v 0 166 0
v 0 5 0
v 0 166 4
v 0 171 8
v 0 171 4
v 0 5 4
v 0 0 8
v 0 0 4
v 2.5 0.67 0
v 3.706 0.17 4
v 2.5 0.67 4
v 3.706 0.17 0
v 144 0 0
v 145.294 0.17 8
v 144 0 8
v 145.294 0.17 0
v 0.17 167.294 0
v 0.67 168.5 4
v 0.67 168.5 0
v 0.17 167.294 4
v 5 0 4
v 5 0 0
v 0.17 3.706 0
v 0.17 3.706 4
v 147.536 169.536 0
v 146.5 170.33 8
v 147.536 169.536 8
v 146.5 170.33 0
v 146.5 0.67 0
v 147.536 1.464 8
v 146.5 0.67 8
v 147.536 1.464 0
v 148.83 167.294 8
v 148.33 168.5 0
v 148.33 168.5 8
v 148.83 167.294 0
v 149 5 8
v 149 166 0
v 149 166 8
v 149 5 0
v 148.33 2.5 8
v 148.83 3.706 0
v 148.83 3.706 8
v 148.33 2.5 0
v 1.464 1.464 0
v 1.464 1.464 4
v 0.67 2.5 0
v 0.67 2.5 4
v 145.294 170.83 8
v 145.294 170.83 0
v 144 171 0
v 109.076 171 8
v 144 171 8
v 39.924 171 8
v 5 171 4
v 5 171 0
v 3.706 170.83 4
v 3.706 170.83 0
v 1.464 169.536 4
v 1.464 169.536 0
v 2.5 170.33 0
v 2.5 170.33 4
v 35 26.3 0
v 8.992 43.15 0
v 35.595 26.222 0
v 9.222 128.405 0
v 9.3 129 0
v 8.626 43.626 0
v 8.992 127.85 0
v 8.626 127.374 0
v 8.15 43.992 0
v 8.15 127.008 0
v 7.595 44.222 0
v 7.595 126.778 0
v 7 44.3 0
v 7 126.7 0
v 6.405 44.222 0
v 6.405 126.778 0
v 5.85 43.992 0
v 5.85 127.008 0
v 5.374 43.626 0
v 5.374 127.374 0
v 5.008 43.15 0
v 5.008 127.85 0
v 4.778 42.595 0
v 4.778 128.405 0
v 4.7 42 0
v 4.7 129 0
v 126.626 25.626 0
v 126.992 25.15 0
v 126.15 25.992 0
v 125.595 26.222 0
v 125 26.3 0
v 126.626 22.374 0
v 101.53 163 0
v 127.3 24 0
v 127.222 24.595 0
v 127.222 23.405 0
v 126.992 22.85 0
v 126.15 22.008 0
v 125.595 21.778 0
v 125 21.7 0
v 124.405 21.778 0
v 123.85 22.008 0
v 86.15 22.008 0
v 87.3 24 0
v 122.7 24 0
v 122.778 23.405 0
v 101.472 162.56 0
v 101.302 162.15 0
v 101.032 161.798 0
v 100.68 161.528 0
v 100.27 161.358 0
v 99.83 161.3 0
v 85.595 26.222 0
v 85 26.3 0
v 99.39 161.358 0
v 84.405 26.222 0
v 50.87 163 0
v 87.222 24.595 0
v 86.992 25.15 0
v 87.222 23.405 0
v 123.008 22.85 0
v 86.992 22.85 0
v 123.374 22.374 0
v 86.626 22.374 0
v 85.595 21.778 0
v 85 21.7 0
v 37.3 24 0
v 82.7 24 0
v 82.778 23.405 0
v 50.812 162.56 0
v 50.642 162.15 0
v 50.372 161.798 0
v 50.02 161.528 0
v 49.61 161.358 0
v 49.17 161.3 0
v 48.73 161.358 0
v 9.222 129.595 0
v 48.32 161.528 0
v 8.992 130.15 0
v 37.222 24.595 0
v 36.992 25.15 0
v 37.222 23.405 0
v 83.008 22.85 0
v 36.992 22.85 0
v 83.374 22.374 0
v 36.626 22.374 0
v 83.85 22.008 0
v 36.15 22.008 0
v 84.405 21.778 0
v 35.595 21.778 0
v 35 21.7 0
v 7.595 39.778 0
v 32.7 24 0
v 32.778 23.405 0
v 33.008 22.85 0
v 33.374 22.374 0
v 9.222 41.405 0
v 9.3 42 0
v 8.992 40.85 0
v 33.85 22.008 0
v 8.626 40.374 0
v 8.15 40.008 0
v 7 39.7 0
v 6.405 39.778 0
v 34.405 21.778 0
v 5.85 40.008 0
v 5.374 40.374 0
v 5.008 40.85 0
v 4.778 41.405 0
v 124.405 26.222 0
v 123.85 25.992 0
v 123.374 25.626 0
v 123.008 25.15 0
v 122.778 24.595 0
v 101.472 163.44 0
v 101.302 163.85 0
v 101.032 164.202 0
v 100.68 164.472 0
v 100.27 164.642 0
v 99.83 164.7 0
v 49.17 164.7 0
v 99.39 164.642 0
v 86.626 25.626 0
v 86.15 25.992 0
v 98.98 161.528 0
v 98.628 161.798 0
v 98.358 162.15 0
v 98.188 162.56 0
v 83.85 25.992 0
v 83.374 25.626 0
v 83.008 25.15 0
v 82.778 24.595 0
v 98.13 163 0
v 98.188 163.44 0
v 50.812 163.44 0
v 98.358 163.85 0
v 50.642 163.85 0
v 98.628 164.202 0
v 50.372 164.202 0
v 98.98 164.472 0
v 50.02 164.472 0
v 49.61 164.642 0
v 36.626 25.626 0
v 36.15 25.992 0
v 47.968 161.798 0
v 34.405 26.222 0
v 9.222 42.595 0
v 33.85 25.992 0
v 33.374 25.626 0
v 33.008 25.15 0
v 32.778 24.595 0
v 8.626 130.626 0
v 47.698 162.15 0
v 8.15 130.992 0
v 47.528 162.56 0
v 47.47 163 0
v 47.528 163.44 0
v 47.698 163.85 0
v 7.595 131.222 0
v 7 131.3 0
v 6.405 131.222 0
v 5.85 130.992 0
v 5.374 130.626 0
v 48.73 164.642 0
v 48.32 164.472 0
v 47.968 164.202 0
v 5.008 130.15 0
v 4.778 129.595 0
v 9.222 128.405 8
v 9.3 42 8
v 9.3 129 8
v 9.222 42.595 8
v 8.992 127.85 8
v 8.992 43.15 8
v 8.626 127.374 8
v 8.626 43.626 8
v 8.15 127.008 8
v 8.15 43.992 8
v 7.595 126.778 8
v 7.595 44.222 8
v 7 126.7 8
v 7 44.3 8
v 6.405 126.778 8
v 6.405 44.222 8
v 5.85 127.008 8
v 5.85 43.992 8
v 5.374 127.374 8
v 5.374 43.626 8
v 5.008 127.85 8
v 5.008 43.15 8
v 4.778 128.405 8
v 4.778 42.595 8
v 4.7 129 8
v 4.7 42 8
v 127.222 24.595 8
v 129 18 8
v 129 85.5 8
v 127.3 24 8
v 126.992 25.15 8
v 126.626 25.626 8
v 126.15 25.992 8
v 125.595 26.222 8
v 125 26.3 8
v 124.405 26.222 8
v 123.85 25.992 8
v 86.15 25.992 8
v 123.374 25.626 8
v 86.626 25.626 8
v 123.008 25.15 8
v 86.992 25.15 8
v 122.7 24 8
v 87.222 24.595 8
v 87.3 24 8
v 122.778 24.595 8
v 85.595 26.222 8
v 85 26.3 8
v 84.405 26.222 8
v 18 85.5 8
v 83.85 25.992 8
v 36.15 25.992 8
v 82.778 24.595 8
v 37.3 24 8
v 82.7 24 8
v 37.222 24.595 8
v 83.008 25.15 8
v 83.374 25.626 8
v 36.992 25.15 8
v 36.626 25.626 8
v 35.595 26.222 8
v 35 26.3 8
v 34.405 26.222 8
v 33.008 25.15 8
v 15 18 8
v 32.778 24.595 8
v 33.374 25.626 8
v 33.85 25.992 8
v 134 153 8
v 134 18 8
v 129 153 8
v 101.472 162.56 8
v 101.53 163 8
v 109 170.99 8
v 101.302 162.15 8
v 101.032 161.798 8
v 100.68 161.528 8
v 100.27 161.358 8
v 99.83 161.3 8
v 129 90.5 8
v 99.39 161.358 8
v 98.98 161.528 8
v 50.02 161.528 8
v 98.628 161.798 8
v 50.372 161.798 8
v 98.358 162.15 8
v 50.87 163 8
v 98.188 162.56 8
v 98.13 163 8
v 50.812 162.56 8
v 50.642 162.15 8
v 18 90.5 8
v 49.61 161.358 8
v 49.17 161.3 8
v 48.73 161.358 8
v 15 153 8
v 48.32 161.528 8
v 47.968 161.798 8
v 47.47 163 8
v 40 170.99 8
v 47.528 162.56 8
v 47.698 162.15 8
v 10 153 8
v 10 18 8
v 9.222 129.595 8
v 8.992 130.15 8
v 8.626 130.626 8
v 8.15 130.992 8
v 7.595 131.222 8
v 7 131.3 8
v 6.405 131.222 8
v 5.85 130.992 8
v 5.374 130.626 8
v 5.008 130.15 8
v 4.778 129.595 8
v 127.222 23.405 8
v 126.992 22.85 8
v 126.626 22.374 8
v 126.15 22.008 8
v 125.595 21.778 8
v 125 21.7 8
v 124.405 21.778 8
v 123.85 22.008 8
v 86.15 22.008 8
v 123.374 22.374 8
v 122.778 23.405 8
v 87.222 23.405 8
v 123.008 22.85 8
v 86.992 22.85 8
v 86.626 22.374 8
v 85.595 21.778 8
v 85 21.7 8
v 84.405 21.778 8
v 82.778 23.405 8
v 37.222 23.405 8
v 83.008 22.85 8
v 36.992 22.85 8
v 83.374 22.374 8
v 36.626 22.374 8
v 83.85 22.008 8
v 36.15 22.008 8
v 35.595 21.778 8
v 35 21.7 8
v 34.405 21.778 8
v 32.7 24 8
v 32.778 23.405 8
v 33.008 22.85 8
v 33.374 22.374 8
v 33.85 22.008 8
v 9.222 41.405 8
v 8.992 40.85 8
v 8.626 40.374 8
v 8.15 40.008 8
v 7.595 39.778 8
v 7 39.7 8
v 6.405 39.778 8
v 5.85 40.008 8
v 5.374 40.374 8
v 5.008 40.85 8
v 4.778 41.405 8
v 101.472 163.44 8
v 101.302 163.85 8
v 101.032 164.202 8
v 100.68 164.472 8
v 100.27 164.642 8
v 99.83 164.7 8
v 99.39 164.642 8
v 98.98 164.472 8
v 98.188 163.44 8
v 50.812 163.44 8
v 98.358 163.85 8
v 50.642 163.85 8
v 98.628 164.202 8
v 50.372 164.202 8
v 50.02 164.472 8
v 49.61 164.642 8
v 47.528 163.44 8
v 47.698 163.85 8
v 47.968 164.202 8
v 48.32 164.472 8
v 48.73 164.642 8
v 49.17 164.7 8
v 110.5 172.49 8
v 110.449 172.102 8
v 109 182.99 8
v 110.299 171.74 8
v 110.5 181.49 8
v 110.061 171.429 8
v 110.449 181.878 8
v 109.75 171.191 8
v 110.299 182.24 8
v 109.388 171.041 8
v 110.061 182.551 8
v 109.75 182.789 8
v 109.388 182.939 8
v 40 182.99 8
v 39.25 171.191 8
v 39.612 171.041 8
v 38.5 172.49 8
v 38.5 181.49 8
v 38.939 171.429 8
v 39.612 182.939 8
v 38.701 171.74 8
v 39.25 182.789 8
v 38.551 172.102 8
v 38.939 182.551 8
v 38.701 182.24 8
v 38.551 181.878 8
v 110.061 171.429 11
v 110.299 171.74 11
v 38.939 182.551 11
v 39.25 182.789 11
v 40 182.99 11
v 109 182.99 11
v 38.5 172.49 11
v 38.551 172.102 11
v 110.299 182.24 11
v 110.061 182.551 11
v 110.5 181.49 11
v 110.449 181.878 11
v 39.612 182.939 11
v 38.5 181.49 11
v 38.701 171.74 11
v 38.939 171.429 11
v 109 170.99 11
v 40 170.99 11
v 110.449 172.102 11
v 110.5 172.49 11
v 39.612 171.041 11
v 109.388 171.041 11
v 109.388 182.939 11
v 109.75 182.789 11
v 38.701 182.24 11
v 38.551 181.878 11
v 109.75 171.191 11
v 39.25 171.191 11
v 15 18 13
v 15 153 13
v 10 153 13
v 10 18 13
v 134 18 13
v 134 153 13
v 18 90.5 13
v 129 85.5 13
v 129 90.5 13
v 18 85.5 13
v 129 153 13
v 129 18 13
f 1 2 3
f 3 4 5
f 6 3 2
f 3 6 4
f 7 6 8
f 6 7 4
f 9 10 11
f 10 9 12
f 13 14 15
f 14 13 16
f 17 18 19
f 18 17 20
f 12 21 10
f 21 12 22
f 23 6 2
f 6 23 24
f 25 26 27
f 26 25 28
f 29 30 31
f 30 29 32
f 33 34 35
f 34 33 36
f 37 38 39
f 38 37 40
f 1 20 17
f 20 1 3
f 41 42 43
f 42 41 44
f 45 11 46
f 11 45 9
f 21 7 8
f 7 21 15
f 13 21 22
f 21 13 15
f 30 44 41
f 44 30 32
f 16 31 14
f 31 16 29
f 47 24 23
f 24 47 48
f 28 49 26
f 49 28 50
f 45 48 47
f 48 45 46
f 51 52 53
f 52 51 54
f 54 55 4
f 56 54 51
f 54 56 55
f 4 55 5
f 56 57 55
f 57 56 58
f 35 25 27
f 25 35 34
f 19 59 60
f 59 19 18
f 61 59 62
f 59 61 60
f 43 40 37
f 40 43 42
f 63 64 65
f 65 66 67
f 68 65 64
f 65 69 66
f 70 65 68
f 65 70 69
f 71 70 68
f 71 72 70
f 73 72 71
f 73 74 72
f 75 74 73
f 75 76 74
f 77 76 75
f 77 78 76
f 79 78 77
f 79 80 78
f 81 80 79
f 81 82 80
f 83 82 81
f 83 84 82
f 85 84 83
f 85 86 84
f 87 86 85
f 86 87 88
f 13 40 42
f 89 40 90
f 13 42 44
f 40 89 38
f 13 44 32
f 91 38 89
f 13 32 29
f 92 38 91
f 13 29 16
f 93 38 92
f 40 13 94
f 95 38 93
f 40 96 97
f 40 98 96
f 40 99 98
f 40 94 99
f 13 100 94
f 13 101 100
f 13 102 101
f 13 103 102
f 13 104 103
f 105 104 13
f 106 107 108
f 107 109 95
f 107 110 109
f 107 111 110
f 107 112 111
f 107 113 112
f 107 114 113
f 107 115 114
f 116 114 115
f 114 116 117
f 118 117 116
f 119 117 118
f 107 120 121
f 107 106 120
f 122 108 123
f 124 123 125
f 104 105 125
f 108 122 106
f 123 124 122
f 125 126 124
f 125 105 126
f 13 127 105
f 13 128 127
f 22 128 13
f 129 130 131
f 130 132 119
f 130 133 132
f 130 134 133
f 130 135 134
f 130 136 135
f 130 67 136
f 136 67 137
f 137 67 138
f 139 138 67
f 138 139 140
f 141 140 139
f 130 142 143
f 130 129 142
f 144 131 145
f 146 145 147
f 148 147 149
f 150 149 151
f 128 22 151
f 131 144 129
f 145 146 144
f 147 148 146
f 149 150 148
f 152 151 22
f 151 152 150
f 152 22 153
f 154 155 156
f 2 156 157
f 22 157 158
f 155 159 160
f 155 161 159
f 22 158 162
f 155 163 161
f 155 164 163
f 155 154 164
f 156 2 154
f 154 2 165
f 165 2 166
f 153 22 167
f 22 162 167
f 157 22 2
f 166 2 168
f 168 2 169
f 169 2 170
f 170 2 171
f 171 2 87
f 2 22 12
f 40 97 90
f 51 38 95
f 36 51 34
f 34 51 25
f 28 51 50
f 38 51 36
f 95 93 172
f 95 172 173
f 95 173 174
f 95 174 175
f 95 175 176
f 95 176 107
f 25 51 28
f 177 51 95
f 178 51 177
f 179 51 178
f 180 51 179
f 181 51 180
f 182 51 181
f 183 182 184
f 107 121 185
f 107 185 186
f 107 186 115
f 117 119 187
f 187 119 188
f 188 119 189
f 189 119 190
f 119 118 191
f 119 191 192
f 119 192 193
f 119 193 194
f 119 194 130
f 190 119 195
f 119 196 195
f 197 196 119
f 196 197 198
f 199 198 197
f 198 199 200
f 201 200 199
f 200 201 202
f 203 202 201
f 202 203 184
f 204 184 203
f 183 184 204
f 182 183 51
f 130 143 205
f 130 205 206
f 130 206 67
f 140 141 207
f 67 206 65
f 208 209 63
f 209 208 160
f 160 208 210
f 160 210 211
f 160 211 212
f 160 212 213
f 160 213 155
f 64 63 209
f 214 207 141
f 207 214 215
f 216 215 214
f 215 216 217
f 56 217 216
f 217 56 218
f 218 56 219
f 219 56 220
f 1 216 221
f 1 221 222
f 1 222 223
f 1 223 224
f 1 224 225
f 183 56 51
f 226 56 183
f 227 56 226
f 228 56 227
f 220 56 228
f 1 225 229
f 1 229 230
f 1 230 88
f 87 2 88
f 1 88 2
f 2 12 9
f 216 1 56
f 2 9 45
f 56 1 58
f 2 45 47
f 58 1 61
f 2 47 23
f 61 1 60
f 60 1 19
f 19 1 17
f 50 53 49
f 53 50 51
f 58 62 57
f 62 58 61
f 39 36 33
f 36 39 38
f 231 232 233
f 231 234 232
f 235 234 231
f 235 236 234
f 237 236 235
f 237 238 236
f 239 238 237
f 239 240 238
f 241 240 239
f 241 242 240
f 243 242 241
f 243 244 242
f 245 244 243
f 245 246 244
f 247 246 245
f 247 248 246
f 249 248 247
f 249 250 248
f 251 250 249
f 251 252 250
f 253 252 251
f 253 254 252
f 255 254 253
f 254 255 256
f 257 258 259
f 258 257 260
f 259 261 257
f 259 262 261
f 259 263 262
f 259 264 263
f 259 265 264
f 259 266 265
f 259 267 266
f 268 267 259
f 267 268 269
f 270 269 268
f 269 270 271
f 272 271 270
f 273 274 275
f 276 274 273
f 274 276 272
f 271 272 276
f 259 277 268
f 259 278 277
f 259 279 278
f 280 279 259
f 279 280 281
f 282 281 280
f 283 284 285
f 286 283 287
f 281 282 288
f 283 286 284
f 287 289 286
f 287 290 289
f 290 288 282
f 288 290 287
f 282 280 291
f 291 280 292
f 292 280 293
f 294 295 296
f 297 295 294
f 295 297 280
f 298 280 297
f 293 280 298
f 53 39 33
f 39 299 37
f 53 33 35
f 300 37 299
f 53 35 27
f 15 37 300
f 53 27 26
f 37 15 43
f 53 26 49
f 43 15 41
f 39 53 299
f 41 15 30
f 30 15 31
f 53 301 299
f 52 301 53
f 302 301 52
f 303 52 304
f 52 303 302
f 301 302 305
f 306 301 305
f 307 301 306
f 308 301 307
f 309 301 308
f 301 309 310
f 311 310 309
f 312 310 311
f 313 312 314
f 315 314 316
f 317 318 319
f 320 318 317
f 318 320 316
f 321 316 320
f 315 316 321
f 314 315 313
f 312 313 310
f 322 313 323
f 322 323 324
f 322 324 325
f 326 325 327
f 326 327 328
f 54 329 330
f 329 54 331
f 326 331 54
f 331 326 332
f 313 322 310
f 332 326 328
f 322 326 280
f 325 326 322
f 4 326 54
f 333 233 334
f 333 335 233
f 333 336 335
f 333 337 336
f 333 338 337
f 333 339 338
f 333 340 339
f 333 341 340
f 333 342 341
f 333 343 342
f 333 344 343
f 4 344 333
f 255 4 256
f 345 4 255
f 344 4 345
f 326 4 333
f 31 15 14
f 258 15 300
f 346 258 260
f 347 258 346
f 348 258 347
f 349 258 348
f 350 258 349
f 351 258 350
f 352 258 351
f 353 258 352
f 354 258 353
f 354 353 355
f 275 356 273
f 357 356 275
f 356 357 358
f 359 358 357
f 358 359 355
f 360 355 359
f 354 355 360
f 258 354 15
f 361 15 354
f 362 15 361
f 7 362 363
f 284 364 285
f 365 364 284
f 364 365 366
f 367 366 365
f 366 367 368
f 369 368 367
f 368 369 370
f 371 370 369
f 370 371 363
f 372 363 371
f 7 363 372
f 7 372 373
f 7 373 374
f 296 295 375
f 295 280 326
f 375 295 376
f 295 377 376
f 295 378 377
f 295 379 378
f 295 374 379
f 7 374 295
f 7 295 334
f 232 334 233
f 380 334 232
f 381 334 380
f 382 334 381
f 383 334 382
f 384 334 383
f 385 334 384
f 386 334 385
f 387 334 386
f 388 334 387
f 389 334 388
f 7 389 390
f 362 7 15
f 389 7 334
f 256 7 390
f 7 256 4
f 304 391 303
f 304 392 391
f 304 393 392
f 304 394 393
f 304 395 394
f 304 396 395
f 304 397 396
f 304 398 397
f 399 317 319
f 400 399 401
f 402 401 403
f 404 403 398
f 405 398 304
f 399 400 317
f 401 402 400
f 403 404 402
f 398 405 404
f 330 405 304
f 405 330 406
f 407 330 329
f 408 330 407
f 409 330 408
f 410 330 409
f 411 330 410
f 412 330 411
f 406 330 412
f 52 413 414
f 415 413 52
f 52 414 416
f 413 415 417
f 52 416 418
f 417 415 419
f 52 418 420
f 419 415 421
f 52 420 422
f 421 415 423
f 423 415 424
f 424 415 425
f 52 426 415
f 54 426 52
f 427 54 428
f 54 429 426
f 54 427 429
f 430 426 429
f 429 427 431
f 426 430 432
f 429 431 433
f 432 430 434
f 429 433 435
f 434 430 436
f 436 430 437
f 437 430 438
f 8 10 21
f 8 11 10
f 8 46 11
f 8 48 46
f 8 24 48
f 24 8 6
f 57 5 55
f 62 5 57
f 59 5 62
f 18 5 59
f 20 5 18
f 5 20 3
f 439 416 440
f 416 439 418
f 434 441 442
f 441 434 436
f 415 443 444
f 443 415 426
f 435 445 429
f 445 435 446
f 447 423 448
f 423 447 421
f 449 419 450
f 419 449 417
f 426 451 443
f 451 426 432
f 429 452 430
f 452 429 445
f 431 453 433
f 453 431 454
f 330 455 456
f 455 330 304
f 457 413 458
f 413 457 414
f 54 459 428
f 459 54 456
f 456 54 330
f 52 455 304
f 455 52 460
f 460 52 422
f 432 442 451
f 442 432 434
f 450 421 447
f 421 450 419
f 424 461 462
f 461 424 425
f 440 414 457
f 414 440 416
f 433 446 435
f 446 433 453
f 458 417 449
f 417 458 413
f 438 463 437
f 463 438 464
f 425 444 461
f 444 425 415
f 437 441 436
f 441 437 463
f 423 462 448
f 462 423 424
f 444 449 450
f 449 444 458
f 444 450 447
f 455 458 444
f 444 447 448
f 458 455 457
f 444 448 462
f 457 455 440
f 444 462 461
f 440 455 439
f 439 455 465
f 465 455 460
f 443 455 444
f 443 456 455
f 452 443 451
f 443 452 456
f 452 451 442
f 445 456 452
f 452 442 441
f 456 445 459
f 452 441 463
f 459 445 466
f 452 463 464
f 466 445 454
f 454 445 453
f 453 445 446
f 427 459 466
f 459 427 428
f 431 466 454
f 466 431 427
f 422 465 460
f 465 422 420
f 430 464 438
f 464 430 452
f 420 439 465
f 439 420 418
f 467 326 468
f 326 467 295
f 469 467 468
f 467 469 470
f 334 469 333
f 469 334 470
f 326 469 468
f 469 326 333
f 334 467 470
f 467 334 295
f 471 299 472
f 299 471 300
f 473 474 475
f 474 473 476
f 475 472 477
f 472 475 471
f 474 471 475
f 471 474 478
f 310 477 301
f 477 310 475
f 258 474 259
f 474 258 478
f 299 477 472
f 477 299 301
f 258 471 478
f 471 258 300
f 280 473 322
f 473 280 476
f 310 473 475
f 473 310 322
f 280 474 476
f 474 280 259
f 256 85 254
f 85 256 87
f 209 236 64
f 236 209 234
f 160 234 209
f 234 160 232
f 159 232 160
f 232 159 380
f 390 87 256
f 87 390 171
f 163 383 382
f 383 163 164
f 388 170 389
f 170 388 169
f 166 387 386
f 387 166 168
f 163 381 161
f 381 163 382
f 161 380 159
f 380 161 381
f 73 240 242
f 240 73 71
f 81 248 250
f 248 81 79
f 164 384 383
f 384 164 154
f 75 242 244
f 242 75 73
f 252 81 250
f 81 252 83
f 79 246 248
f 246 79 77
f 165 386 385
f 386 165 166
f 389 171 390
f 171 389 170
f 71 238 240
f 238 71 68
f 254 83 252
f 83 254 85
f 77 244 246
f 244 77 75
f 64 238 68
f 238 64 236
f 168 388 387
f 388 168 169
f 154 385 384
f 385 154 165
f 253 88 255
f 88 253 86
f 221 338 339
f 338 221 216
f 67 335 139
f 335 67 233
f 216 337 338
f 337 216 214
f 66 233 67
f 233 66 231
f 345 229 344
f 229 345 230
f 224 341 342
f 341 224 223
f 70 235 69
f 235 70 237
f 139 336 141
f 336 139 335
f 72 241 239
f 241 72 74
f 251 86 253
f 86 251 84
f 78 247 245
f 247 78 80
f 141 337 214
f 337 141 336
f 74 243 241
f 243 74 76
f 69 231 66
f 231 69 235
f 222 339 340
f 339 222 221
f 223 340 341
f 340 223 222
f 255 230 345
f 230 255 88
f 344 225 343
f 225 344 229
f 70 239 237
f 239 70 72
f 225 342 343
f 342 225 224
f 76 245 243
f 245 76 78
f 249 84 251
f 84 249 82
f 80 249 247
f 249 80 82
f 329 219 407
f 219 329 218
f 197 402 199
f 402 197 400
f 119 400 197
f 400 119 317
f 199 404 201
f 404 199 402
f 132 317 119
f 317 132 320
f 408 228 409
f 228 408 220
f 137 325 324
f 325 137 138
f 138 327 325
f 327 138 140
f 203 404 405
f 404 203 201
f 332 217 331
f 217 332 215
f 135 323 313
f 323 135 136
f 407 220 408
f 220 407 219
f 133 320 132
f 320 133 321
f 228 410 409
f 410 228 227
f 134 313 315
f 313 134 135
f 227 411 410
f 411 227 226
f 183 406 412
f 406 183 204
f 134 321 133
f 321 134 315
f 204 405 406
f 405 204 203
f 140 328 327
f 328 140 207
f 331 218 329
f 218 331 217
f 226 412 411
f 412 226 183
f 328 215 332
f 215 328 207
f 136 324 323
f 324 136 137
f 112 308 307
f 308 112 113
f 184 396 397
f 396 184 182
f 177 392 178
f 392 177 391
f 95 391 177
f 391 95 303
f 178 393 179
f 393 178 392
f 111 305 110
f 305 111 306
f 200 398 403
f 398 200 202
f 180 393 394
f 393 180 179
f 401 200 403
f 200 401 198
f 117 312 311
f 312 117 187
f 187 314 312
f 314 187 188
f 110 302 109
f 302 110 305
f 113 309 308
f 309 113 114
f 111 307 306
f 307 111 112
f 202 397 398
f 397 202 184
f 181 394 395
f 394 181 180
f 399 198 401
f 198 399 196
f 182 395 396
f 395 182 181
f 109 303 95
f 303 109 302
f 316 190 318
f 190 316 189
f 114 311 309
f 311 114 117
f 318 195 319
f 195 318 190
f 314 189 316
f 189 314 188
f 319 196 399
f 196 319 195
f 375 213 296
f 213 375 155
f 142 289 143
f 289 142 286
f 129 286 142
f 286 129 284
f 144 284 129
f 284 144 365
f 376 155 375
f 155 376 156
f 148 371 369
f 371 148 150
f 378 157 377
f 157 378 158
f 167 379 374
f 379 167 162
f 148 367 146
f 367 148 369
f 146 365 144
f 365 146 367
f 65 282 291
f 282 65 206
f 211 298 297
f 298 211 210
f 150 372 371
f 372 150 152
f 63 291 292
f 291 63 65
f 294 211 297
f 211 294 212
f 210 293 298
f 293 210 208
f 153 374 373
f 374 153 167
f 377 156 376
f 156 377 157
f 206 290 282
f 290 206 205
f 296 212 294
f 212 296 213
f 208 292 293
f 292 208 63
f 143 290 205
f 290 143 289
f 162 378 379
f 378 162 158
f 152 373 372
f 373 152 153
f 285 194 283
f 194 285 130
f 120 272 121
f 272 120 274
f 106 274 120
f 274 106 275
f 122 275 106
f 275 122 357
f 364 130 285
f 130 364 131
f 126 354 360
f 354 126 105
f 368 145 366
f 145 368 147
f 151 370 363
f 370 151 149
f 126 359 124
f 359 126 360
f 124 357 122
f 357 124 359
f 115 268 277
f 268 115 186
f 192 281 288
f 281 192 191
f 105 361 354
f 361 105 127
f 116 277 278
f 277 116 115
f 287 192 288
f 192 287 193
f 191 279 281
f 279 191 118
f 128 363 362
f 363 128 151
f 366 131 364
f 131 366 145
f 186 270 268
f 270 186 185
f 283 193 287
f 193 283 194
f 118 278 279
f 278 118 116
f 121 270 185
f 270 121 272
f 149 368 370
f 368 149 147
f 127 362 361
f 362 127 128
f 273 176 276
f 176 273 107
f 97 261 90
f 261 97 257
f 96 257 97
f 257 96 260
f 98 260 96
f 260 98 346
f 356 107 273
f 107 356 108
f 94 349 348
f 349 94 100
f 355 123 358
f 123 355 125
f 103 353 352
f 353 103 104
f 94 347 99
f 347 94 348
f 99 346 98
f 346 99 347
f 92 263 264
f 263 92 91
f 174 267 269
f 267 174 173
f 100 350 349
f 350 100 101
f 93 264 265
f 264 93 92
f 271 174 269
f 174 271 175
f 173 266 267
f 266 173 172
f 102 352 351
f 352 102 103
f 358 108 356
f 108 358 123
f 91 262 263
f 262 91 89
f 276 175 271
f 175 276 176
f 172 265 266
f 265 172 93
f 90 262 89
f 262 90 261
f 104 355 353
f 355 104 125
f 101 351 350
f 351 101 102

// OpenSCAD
// file: 00_parameters.scad
// TenderCells DoorCell V1 shared parameters
// Units: millimeters

overall_w = 438;
overall_h = 368;
frame_depth = 56;

clear_w = 242;
clear_h = 312;

rail_thick = 32;
jamb_w = 48;
motor_jamb_w = 78;

// Printability targets
target_bed_xy = 220;
comfortable_part_max = 180;

// Modular frame split dimensions
top_seg_len = overall_w / 3;
bottom_seg_len = overall_w / 3;
left_jamb_seg_h = overall_h / 2;
right_lower_h = 118;
right_motor_h = 156;
right_upper_h = overall_h - right_lower_h - right_motor_h;

// Low-cost electronics envelope used by DoorCell V1.4.
// These dimensions are based on common generic modules, not a custom PCB.
esp32_board = [58, 31, 8];
drv8871_board = [31, 26, 7];
current_sensor_board = [26, 22, 7];
lm2596_board = [44, 22, 14];
inline_fuse_body = [45, 15, 14];
cn3065_board = [44, 24, 8];
electronics_clearance = 1.5;
controller_wall = 3;
controller_box_w = 170;
controller_box_h = 115;
controller_box_d = 46;
controller_lid_insert_offset = 11;
controller_m12_gland_d = 12.8;
controller_m10_gland_d = 10.6;
controller_m8_gland_d = 8.4;
controller_button_d = 16.2;

// Brass heat-set/push-in insert features.
insert_post_d = 8.0;
insert_post_h = 8.0;
insert_pilot_d = 4.6;
insert_pilot_depth = 6.5;
hold_down_screw_clearance = 3.4;

// Motor envelope for common 25GA/JGA25-370 gearmotors with optional encoder.
motor_body_d = 25.0;
motor_body_clearance_d = 27.2;
motor_body_len = 65;
motor_encoder_clearance = 16;
motor_mount_plate = [72, 92, 12];
motor_mount_cradle = [54, 74, 28];

// Optional solar add-on.
solar_panel_w = 145;
solar_panel_h = 145;
solar_panel_t = 4.0;
solar_panel_frame_border = 10;
solar_panel_frame_w = solar_panel_w + 2*solar_panel_frame_border;
solar_panel_frame_h = solar_panel_h + 2*solar_panel_frame_border;
solar_panel_back_depth = 14;
solar_panel_lip_overlap = 3;
solar_ball_d = 22;
solar_ball_socket_clearance = 0.45;
solar_mount_m5 = 5.4;

// Tongue-and-groove frame joints
// Fit target: common FDM printers with PETG/ASA.
// Clearance is per side, so sockets add 2x this value.
tongue_len = 18;
tongue_w = 22;
tongue_z = 10;
tongue_clearance_side = 0.25;
tongue_socket_depth_extra = 0.60;

door_w = 270;
door_h = 326;
door_t = 8;

track_gap = 11;
track_depth = 12;

// Rack-and-pinion drive
// Metric module gear math:
// circular_pitch = PI * module
// pitch_diameter = module * tooth_count
// outside_diameter = module * (tooth_count + 2)
// root_diameter = module * (tooth_count - 2.5)
gear_module = 2.0;
pressure_angle = 20;
gear_backlash = 0.20; // mm removed from rack tooth thickness at pitch line

pinion_teeth = 16;
pinion_pitch_d = gear_module * pinion_teeth;
pinion_pitch_radius = pinion_pitch_d / 2;
pinion_outer_d = gear_module * (pinion_teeth + 2);
pinion_outer_radius = pinion_outer_d / 2;
pinion_root_d = gear_module * (pinion_teeth - 2.5);
pinion_root_radius = pinion_root_d / 2;
pinion_thick = 12;
shaft_d = 6.2;

rack_tooth_count = 15;
rack_circular_pitch = 3.141592653589793 * gear_module;
rack_len = rack_circular_pitch * rack_tooth_count;
rack_w = 18;
rack_t = 6;
rack_addendum = gear_module;
rack_dedendum = 1.25 * gear_module;
rack_tooth_h = rack_addendum + rack_dedendum;
rack_pitch_line_z = rack_dedendum;
rack_tooth_pitch_thickness = rack_circular_pitch / 2 - gear_backlash;
rack_tooth_top_w = rack_tooth_pitch_thickness - 2 * rack_addendum * tan(pressure_angle);
rack_tooth_root_w = rack_tooth_pitch_thickness + 2 * rack_dedendum * tan(pressure_angle);

screw_m3 = 3.4;
screw_m4 = 4.5;
insert_m3 = 4.6;

eps = 0.01;

module rounded_box(size=[10,10,10], r=2) {
  hull() {
    translate([r,r,0]) cylinder(h=size[2], r=r, $fn=24);
    translate([size[0]-r,r,0]) cylinder(h=size[2], r=r, $fn=24);
    translate([r,size[1]-r,0]) cylinder(h=size[2], r=r, $fn=24);
    translate([size[0]-r,size[1]-r,0]) cylinder(h=size[2], r=r, $fn=24);
  }
}

module m3_clearance_hole(h=20) {
  cylinder(h=h, d=screw_m3, $fn=24);
}

module m4_clearance_hole(h=20) {
  cylinder(h=h, d=screw_m4, $fn=24);
}

module heat_insert_hole(h=6) {
  cylinder(h=h, d=insert_m3, $fn=24);
}

module heat_insert_post(h=insert_post_h, d=insert_post_d) {
  difference() {
    cylinder(h=h, d=d, $fn=32);
    translate([0,0,h-insert_pilot_depth+eps])
      cylinder(h=insert_pilot_depth+eps, d=insert_pilot_d, $fn=24);
  }
}

module m3_hold_down_slot(length=10, h=4) {
  hull() {
    translate([-length/2,0,0]) cylinder(h=h, d=hold_down_screw_clearance, $fn=20);
    translate([ length/2,0,0]) cylinder(h=h, d=hold_down_screw_clearance, $fn=20);
  }
}

module rail_channel(length=100) {
  cube([length, track_gap, track_depth]);
}

module frame_tongue_x() {
  rounded_box([tongue_len, tongue_w, tongue_z], r=1.5);
}

module frame_socket_x() {
  cube([
    tongue_len + tongue_socket_depth_extra,
    tongue_w + 2*tongue_clearance_side,
    tongue_z + 2*tongue_clearance_side
  ]);
}

module frame_tongue_y() {
  rounded_box([tongue_w, tongue_len, tongue_z], r=1.5);
}

module frame_socket_y() {
  cube([
    tongue_w + 2*tongue_clearance_side,
    tongue_len + tongue_socket_depth_extra,
    tongue_z + 2*tongue_clearance_side
  ]);
}

module rack_teeth(len=rack_len) {
  teeth = floor(len / rack_circular_pitch);
  for (i=[0:teeth-1]) {
    center = i*rack_circular_pitch + rack_circular_pitch/2;
    translate([0, 0, rack_t-0.20])
      linear_extrude(height=rack_w)
        polygon(points=[
          [center - rack_tooth_root_w/2, 0],
          [center + rack_tooth_root_w/2, 0],
          [center + rack_tooth_top_w/2, rack_tooth_h],
          [center - rack_tooth_top_w/2, rack_tooth_h]
        ]);
  }
}

function polar_point(r, a) = [r * cos(a), r * sin(a)];
// file: sliding_door_modular_common.scad
include <00_parameters.scad>

door_part_w = door_w/2 + 14;
door_part_h = door_h/2 + 8;
door_mid_overlap = 14;
door_v_overlap = 12;

module door_tongue_y(width=72) {
  rounded_box([width, door_v_overlap, 3], r=1.5);
}

module door_socket_y(width=74) {
  cube([width, door_v_overlap + 2*tongue_clearance_side, 3.8]);
}

module sliding_door_quadrant(side="left", row="lower") {
  difference() {
    union() {
      rounded_box([door_part_w, door_part_h, door_t], r=5);

      // Vertical center lap between left and right panels.
      if (side == "left") {
        translate([door_part_w-door_mid_overlap, 0, 0])
          cube([door_mid_overlap, door_part_h, door_t/2]);
      } else {
        translate([0, 0, door_t/2])
          cube([door_mid_overlap, door_part_h, door_t/2]);
      }

      // Horizontal lap between lower and upper panels.
      if (row == "lower") {
        translate([door_part_w/2-36, door_part_h-eps, door_t])
          door_tongue_y(width=72);
      }

      // Stiffening ribs.
      translate([10, 18, door_t])
        cube([5, door_part_h-36, 5]);
      translate([door_part_w-20, 18, door_t])
        cube([5, door_part_h-36, 5]);
      translate([18, door_part_h/2, door_t])
        cube([door_part_w-36, 5, 5]);
    }

    if (row == "upper") {
      translate([door_part_w/2-37, -eps, door_t-0.2])
        door_socket_y(width=74);
    }

    // Center lap fastener holes.
    if (side == "left") {
      for (y=[42, door_part_h-42]) {
        translate([door_part_w-door_mid_overlap/2, y, -eps])
          m3_clearance_hole(h=door_t+10);
      }
    } else {
      for (y=[42, door_part_h-42]) {
        translate([door_mid_overlap/2, y, -eps])
          heat_insert_hole(h=door_t+1);
      }
    }

    // Horizontal split fastener holes.
    if (row == "lower") {
      for (x=[door_part_w*0.33, door_part_w*0.67]) {
        translate([x, door_part_h-8, -eps])
          m3_clearance_hole(h=door_t+10);
      }
    } else {
      for (x=[door_part_w*0.33, door_part_w*0.67]) {
        translate([x, 8, -eps])
          heat_insert_hole(h=door_t+1);
      }
    }

    // Rack mounting holes only on lower row.
    if (row == "lower") {
      for (x=[35, 85, 125]) {
        translate([x, 24, -eps]) heat_insert_hole(h=door_t+1);
      }
    }
  }
}
// main file
include <sliding_door_modular_common.scad>

sliding_door_quadrant(side="right", row="lower");
